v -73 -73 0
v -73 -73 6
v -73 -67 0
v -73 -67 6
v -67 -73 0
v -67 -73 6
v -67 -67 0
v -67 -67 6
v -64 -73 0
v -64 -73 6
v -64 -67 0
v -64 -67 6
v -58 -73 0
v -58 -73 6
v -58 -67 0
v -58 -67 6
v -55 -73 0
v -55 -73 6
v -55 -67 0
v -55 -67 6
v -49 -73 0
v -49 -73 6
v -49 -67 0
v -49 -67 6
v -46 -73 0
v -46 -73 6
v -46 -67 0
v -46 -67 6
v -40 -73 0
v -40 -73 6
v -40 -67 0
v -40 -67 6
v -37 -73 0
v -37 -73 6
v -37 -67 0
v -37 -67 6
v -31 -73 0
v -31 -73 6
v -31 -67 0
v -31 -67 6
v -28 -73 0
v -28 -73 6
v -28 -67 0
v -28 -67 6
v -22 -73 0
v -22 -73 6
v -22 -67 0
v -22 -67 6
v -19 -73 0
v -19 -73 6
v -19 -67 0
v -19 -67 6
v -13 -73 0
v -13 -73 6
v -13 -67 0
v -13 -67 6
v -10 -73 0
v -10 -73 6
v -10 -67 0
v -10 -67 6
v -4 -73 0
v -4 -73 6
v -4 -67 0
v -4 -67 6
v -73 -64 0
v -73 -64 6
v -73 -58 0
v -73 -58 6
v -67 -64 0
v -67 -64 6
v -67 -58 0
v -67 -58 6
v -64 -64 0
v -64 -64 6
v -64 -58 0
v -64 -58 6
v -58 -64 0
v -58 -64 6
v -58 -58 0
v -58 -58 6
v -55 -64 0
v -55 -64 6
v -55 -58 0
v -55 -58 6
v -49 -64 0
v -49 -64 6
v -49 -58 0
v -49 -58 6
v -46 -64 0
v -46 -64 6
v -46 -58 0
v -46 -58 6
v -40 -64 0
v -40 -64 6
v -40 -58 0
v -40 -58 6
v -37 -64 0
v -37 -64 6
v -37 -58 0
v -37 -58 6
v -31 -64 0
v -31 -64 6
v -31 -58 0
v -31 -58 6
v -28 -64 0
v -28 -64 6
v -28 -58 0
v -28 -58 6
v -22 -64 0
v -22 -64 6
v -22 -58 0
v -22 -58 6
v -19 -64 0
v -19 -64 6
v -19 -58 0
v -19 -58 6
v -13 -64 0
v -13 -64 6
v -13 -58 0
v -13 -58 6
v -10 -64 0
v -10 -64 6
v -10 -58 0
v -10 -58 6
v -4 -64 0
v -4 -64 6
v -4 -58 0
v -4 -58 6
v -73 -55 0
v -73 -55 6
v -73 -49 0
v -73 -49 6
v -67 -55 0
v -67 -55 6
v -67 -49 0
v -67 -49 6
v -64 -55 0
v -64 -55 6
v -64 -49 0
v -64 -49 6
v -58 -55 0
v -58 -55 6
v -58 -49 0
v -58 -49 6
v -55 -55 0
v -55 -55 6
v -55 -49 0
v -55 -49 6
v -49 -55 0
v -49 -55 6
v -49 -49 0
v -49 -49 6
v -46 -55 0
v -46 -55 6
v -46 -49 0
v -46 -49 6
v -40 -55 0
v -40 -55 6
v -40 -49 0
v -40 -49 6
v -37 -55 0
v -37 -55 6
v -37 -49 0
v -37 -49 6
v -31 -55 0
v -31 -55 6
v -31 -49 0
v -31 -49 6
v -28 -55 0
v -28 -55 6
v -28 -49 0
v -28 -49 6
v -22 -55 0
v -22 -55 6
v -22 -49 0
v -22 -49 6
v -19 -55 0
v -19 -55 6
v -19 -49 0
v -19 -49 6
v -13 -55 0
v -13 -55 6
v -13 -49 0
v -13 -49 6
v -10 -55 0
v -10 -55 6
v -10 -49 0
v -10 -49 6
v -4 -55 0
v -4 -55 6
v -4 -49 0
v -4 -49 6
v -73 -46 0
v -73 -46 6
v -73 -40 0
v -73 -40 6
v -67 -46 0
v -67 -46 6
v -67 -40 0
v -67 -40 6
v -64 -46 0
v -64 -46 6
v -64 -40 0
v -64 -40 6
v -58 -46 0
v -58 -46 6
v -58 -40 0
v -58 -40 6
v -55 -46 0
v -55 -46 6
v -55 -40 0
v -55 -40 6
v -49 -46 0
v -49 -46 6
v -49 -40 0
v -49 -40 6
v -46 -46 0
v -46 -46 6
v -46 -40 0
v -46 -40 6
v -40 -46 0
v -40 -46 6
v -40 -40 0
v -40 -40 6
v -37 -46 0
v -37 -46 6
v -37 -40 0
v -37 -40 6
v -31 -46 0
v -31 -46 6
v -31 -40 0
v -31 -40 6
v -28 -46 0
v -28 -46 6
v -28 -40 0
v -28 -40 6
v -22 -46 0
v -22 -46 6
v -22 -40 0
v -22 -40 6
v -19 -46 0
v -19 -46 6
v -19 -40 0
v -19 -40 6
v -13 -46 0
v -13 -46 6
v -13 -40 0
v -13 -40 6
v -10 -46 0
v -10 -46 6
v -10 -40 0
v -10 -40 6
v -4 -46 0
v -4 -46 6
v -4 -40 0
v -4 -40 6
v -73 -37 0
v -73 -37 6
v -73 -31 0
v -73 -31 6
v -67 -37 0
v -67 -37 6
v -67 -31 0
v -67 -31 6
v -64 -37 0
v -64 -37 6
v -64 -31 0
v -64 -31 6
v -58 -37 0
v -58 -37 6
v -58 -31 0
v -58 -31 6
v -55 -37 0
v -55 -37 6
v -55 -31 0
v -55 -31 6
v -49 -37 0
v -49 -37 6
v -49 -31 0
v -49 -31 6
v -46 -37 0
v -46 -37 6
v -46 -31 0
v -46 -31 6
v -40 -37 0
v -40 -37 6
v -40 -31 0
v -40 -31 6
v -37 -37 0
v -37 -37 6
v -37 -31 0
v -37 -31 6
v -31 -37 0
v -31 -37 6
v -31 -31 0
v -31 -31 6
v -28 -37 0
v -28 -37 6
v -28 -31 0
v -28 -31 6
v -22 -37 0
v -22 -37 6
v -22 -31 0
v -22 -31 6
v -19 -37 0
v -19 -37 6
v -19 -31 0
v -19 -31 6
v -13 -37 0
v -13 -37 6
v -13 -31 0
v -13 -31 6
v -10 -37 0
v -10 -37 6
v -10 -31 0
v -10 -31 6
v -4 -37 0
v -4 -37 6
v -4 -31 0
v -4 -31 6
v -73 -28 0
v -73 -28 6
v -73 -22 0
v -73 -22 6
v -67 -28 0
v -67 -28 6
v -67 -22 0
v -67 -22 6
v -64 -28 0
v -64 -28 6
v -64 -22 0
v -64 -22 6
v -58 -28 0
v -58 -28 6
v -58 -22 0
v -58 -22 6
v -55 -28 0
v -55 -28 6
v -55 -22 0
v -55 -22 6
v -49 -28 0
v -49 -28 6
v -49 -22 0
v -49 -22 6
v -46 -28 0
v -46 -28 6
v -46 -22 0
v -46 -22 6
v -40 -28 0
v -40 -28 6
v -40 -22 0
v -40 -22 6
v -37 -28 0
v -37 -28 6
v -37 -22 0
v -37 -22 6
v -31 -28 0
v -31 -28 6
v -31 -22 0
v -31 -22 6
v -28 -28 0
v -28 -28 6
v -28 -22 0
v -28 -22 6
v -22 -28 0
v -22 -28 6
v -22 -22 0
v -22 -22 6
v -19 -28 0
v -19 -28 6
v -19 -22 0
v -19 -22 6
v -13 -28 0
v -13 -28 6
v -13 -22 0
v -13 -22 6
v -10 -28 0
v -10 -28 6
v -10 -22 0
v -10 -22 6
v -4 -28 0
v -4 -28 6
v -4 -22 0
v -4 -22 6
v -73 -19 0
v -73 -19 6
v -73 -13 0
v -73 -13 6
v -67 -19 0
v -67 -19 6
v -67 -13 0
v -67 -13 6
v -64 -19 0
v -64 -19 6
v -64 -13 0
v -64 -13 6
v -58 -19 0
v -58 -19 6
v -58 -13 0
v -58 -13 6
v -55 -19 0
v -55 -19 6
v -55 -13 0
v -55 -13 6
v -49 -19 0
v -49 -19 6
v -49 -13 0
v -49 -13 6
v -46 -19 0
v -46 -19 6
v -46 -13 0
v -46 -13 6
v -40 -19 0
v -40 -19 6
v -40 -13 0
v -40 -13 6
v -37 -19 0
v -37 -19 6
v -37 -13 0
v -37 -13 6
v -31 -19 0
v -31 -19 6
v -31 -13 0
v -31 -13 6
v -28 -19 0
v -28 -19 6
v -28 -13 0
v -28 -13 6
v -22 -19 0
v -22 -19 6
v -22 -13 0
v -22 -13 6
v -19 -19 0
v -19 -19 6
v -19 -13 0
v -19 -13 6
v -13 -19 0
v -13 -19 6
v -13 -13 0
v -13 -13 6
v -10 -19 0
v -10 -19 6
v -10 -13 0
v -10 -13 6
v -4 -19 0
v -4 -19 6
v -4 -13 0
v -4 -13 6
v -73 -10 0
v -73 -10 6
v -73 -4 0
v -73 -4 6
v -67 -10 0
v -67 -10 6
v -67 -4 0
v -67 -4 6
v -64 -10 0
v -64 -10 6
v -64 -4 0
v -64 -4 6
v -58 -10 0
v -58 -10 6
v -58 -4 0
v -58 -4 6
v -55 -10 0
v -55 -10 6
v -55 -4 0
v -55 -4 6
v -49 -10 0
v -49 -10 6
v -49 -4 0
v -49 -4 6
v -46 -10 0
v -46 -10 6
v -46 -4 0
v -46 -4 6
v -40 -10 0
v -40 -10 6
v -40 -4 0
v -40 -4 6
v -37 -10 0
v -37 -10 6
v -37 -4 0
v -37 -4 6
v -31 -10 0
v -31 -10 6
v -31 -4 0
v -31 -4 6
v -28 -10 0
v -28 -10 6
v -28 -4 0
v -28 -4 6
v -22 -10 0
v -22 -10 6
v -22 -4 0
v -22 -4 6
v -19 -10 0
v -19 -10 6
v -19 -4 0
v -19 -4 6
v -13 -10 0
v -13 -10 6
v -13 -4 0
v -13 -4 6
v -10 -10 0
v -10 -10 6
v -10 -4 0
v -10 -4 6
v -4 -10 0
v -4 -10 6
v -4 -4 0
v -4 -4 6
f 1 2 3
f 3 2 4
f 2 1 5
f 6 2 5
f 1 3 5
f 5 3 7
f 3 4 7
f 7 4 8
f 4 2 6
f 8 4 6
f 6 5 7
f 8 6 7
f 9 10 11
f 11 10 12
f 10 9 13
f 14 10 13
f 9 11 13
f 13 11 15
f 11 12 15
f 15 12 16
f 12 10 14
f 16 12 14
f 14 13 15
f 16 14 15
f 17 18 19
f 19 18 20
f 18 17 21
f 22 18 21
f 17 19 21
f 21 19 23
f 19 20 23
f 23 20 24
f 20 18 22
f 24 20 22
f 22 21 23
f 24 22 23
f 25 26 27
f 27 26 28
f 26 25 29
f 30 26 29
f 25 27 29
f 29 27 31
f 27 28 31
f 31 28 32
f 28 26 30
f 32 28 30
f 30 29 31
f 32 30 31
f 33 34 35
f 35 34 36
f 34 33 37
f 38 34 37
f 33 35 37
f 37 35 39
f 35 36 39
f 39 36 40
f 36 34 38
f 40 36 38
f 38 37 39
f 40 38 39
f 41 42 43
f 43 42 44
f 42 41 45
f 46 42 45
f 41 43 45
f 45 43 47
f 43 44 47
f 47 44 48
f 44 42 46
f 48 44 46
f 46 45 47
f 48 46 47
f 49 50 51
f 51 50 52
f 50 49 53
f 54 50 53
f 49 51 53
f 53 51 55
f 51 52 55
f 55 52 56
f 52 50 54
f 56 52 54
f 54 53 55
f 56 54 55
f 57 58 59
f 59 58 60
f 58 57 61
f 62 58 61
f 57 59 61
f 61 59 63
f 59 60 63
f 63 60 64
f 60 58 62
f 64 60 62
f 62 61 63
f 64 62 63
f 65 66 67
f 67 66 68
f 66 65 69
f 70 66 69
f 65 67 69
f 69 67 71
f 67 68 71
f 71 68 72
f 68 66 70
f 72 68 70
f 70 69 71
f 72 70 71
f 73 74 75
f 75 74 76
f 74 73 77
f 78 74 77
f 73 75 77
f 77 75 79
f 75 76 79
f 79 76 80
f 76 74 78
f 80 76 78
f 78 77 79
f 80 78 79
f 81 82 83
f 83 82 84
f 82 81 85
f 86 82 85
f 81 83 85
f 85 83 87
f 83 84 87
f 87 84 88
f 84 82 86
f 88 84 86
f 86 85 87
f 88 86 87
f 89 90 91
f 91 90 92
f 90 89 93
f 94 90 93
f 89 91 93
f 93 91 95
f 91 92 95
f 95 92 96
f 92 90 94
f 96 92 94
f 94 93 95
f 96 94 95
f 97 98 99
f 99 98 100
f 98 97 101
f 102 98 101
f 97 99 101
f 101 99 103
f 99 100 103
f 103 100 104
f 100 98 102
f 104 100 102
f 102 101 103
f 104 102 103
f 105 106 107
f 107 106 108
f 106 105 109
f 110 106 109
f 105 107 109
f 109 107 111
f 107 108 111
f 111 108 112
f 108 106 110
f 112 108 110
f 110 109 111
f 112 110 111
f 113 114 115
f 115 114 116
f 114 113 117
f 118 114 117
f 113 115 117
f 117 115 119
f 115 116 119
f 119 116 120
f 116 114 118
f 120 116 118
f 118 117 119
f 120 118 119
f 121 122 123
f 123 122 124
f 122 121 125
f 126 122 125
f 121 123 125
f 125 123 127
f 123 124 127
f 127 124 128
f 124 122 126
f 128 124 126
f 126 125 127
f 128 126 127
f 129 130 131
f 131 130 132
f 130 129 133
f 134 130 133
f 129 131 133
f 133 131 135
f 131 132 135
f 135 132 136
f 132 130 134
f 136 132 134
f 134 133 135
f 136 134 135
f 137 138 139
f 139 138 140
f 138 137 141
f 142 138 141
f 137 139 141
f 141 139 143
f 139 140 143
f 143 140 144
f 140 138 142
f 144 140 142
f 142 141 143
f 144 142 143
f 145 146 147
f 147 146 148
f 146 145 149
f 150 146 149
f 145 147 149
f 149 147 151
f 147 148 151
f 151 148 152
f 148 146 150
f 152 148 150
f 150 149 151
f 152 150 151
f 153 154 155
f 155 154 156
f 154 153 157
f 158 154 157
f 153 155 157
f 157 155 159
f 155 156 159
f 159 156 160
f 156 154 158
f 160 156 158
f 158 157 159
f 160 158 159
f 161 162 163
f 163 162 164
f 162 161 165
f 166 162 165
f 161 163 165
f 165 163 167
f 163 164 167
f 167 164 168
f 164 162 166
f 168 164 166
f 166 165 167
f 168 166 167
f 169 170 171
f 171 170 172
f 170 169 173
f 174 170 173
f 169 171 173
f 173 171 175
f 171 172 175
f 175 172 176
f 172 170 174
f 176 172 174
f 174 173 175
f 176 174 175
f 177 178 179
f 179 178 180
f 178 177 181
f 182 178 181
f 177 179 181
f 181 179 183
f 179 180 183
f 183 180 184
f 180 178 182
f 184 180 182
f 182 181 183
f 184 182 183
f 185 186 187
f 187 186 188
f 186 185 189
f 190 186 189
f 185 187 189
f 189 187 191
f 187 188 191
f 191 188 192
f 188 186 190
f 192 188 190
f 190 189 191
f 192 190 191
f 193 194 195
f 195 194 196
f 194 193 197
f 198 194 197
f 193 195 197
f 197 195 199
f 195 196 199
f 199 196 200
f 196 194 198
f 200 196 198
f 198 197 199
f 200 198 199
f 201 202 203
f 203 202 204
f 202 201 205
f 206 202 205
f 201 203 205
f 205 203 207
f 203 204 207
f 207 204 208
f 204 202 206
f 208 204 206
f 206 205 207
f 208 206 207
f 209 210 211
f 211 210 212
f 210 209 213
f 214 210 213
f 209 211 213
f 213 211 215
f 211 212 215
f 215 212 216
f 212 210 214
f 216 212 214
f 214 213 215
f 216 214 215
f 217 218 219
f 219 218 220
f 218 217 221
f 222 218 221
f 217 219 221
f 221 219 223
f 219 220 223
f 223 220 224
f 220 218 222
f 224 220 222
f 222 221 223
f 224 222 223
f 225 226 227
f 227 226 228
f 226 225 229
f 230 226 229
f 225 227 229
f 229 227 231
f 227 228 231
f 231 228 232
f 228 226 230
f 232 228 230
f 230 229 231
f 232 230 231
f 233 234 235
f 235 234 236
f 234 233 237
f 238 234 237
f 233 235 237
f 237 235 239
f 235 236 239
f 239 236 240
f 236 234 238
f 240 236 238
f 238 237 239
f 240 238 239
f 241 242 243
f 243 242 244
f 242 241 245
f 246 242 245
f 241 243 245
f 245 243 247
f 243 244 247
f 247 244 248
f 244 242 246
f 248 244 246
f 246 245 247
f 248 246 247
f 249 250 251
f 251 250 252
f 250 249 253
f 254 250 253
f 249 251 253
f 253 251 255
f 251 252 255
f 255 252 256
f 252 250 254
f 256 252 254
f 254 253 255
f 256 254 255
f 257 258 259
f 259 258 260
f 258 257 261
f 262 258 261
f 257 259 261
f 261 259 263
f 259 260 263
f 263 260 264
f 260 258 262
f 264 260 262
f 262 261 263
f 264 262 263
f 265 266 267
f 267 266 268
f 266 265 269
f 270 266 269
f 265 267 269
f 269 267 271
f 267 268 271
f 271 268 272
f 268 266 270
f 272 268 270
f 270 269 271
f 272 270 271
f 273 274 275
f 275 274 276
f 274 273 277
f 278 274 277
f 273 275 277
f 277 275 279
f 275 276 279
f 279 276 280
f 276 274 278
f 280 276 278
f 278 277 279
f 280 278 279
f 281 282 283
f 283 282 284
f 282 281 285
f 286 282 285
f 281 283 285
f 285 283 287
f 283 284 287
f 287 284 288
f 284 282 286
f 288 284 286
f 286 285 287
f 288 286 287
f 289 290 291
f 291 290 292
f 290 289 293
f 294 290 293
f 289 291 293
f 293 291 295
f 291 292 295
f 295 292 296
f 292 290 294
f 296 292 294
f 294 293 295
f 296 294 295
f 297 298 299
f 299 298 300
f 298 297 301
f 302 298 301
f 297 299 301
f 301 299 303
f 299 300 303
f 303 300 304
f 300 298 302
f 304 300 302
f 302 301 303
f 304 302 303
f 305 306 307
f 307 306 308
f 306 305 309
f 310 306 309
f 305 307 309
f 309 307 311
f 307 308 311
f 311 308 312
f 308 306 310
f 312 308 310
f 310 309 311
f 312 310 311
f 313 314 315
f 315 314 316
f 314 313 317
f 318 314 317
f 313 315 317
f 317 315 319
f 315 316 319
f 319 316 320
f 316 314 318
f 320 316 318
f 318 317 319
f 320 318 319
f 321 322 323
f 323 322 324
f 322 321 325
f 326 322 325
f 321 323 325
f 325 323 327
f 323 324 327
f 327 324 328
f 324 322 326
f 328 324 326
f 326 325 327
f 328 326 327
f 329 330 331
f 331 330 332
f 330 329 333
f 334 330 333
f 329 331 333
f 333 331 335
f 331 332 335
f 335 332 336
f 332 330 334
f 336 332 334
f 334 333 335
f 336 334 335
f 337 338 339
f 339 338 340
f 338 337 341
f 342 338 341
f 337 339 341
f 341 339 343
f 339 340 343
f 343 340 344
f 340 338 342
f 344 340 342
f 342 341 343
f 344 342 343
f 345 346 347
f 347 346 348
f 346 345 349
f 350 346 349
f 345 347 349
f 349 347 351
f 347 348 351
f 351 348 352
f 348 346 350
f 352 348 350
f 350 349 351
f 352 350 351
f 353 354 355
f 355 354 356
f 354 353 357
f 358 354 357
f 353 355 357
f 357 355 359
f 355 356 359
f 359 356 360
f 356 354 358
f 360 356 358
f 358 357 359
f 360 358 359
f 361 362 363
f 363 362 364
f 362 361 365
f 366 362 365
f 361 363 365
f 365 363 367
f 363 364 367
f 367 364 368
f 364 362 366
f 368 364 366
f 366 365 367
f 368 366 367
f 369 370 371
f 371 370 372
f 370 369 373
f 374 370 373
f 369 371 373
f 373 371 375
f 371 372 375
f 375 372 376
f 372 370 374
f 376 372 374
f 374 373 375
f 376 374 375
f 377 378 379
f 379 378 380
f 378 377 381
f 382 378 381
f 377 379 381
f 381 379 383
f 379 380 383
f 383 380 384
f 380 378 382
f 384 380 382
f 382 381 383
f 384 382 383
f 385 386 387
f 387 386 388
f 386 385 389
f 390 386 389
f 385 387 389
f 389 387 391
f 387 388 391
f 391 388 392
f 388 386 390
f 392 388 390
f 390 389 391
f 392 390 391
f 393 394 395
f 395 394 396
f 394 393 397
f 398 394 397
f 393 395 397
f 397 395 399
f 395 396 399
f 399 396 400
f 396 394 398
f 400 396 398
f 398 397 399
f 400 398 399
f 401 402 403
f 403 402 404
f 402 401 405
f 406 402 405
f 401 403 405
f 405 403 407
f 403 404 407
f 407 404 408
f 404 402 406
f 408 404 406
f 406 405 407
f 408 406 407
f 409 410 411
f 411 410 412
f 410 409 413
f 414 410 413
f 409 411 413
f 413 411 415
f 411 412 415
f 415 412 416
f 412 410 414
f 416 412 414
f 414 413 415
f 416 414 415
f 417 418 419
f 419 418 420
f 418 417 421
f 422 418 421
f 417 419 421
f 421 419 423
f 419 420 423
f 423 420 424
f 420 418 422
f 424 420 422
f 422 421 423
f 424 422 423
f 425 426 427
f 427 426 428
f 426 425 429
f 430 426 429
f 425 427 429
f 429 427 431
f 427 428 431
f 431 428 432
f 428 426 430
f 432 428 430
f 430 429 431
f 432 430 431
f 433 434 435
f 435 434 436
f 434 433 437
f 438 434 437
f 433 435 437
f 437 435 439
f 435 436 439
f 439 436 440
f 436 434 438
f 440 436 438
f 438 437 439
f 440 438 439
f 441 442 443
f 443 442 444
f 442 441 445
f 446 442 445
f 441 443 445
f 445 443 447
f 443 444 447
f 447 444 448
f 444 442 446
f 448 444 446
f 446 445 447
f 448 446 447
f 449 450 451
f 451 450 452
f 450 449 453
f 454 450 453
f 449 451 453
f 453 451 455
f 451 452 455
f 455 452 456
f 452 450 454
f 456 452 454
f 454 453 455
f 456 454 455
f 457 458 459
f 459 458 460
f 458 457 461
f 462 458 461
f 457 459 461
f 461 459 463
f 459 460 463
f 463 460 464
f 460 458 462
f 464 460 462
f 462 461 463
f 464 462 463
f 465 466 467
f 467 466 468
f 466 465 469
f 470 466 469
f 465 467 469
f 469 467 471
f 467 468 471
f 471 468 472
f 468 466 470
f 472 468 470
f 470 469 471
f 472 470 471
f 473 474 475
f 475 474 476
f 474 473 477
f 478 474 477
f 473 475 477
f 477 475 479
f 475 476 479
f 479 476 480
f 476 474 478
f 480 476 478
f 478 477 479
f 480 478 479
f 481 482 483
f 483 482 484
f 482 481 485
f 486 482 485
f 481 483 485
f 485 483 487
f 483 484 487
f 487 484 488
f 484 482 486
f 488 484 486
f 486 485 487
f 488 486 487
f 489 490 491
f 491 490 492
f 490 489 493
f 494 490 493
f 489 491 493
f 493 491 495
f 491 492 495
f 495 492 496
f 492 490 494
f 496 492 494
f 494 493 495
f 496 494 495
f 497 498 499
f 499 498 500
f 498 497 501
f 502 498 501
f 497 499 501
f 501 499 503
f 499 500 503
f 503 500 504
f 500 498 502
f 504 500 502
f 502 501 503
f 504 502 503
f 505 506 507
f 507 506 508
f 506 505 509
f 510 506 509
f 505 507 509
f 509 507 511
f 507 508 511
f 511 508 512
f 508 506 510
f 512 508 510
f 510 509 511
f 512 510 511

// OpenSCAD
union() {
union() {
union() {
union() {
union() {
union() {
union() {
union() {
union() {
union() {
union() {
union() {
union() {
union() {
union() {
union() {
translate([-70,-70,3]) cube([6,6,6],center=true); 
translate([0,0,0]) translate([-70,-70,3]) cube([6,6,6],center=true); 
}
translate([9,0,0]) translate([-70,-70,3]) cube([6,6,6],center=true); 
}
translate([18,0,0]) translate([-70,-70,3]) cube([6,6,6],center=true); 
}
translate([27,0,0]) translate([-70,-70,3]) cube([6,6,6],center=true); 
}
translate([36,0,0]) translate([-70,-70,3]) cube([6,6,6],center=true); 
}
translate([45,0,0]) translate([-70,-70,3]) cube([6,6,6],center=true); 
}
translate([54,0,0]) translate([-70,-70,3]) cube([6,6,6],center=true); 
}
translate([63,0,0]) translate([-70,-70,3]) cube([6,6,6],center=true); 
}
translate([0,0,0]) union() {
union() {
union() {
union() {
union() {
union() {
union() {
union() {
translate([-70,-70,3]) cube([6,6,6],center=true); 
translate([0,0,0]) translate([-70,-70,3]) cube([6,6,6],center=true); 
}
translate([9,0,0]) translate([-70,-70,3]) cube([6,6,6],center=true); 
}
translate([18,0,0]) translate([-70,-70,3]) cube([6,6,6],center=true); 
}
translate([27,0,0]) translate([-70,-70,3]) cube([6,6,6],center=true); 
}
translate([36,0,0]) translate([-70,-70,3]) cube([6,6,6],center=true); 
}
translate([45,0,0]) translate([-70,-70,3]) cube([6,6,6],center=true); 
}
translate([54,0,0]) translate([-70,-70,3]) cube([6,6,6],center=true); 
}
translate([63,0,0]) translate([-70,-70,3]) cube([6,6,6],center=true); 
}
}
translate([0,9,0]) union() {
union() {
union() {
union() {
union() {
union() {
union() {
union() {
translate([-70,-70,3]) cube([6,6,6],center=true); 
translate([0,0,0]) translate([-70,-70,3]) cube([6,6,6],center=true); 
}
translate([9,0,0]) translate([-70,-70,3]) cube([6,6,6],center=true); 
}
translate([18,0,0]) translate([-70,-70,3]) cube([6,6,6],center=true); 
}
translate([27,0,0]) translate([-70,-70,3]) cube([6,6,6],center=true); 
}
translate([36,0,0]) translate([-70,-70,3]) cube([6,6,6],center=true); 
}
translate([45,0,0]) translate([-70,-70,3]) cube([6,6,6],center=true); 
}
translate([54,0,0]) translate([-70,-70,3]) cube([6,6,6],center=true); 
}
translate([63,0,0]) translate([-70,-70,3]) cube([6,6,6],center=true); 
}
}
translate([0,18,0]) union() {
union() {
union() {
union() {
union() {
union() {
union() {
union() {
translate([-70,-70,3]) cube([6,6,6],center=true); 
translate([0,0,0]) translate([-70,-70,3]) cube([6,6,6],center=true); 
}
translate([9,0,0]) translate([-70,-70,3]) cube([6,6,6],center=true); 
}
translate([18,0,0]) translate([-70,-70,3]) cube([6,6,6],center=true); 
}
translate([27,0,0]) translate([-70,-70,3]) cube([6,6,6],center=true); 
}
translate([36,0,0]) translate([-70,-70,3]) cube([6,6,6],center=true); 
}
translate([45,0,0]) translate([-70,-70,3]) cube([6,6,6],center=true); 
}
translate([54,0,0]) translate([-70,-70,3]) cube([6,6,6],center=true); 
}
translate([63,0,0]) translate([-70,-70,3]) cube([6,6,6],center=true); 
}
}
translate([0,27,0]) union() {
union() {
union() {
union() {
union() {
union() {
union() {
union() {
translate([-70,-70,3]) cube([6,6,6],center=true); 
translate([0,0,0]) translate([-70,-70,3]) cube([6,6,6],center=true); 
}
translate([9,0,0]) translate([-70,-70,3]) cube([6,6,6],center=true); 
}
translate([18,0,0]) translate([-70,-70,3]) cube([6,6,6],center=true); 
}
translate([27,0,0]) translate([-70,-70,3]) cube([6,6,6],center=true); 
}
translate([36,0,0]) translate([-70,-70,3]) cube([6,6,6],center=true); 
}
translate([45,0,0]) translate([-70,-70,3]) cube([6,6,6],center=true); 
}
translate([54,0,0]) translate([-70,-70,3]) cube([6,6,6],center=true); 
}
translate([63,0,0]) translate([-70,-70,3]) cube([6,6,6],center=true); 
}
}
translate([0,36,0]) union() {
union() {
union() {
union() {
union() {
union() {
union() {
union() {
translate([-70,-70,3]) cube([6,6,6],center=true); 
translate([0,0,0]) translate([-70,-70,3]) cube([6,6,6],center=true); 
}
translate([9,0,0]) translate([-70,-70,3]) cube([6,6,6],center=true); 
}
translate([18,0,0]) translate([-70,-70,3]) cube([6,6,6],center=true); 
}
translate([27,0,0]) translate([-70,-70,3]) cube([6,6,6],center=true); 
}
translate([36,0,0]) translate([-70,-70,3]) cube([6,6,6],center=true); 
}
translate([45,0,0]) translate([-70,-70,3]) cube([6,6,6],center=true); 
}
translate([54,0,0]) translate([-70,-70,3]) cube([6,6,6],center=true); 
}
translate([63,0,0]) translate([-70,-70,3]) cube([6,6,6],center=true); 
}
}
translate([0,45,0]) union() {
union() {
union() {
union() {
union() {
union() {
union() {
union() {
translate([-70,-70,3]) cube([6,6,6],center=true); 
translate([0,0,0]) translate([-70,-70,3]) cube([6,6,6],center=true); 
}
translate([9,0,0]) translate([-70,-70,3]) cube([6,6,6],center=true); 
}
translate([18,0,0]) translate([-70,-70,3]) cube([6,6,6],center=true); 
}
translate([27,0,0]) translate([-70,-70,3]) cube([6,6,6],center=true); 
}
translate([36,0,0]) translate([-70,-70,3]) cube([6,6,6],center=true); 
}
translate([45,0,0]) translate([-70,-70,3]) cube([6,6,6],center=true); 
}
translate([54,0,0]) translate([-70,-70,3]) cube([6,6,6],center=true); 
}
translate([63,0,0]) translate([-70,-70,3]) cube([6,6,6],center=true); 
}
}
translate([0,54,0]) union() {
union() {
union() {
union() {
union() {
union() {
union() {
union() {
translate([-70,-70,3]) cube([6,6,6],center=true); 
translate([0,0,0]) translate([-70,-70,3]) cube([6,6,6],center=true); 
}
translate([9,0,0]) translate([-70,-70,3]) cube([6,6,6],center=true); 
}
translate([18,0,0]) translate([-70,-70,3]) cube([6,6,6],center=true); 
}
translate([27,0,0]) translate([-70,-70,3]) cube([6,6,6],center=true); 
}
translate([36,0,0]) translate([-70,-70,3]) cube([6,6,6],center=true); 
}
translate([45,0,0]) translate([-70,-70,3]) cube([6,6,6],center=true); 
}
translate([54,0,0]) translate([-70,-70,3]) cube([6,6,6],center=true); 
}
translate([63,0,0]) translate([-70,-70,3]) cube([6,6,6],center=true); 
}
}
translate([0,63,0]) union() {
union() {
union() {
union() {
union() {
union() {
union() {
union() {
translate([-70,-70,3]) cube([6,6,6],center=true); 
translate([0,0,0]) translate([-70,-70,3]) cube([6,6,6],center=true); 
}
translate([9,0,0]) translate([-70,-70,3]) cube([6,6,6],center=true); 
}
translate([18,0,0]) translate([-70,-70,3]) cube([6,6,6],center=true); 
}
translate([27,0,0]) translate([-70,-70,3]) cube([6,6,6],center=true); 
}
translate([36,0,0]) translate([-70,-70,3]) cube([6,6,6],center=true); 
}
translate([45,0,0]) translate([-70,-70,3]) cube([6,6,6],center=true); 
}
translate([54,0,0]) translate([-70,-70,3]) cube([6,6,6],center=true); 
}
translate([63,0,0]) translate([-70,-70,3]) cube([6,6,6],center=true); 
}
}
